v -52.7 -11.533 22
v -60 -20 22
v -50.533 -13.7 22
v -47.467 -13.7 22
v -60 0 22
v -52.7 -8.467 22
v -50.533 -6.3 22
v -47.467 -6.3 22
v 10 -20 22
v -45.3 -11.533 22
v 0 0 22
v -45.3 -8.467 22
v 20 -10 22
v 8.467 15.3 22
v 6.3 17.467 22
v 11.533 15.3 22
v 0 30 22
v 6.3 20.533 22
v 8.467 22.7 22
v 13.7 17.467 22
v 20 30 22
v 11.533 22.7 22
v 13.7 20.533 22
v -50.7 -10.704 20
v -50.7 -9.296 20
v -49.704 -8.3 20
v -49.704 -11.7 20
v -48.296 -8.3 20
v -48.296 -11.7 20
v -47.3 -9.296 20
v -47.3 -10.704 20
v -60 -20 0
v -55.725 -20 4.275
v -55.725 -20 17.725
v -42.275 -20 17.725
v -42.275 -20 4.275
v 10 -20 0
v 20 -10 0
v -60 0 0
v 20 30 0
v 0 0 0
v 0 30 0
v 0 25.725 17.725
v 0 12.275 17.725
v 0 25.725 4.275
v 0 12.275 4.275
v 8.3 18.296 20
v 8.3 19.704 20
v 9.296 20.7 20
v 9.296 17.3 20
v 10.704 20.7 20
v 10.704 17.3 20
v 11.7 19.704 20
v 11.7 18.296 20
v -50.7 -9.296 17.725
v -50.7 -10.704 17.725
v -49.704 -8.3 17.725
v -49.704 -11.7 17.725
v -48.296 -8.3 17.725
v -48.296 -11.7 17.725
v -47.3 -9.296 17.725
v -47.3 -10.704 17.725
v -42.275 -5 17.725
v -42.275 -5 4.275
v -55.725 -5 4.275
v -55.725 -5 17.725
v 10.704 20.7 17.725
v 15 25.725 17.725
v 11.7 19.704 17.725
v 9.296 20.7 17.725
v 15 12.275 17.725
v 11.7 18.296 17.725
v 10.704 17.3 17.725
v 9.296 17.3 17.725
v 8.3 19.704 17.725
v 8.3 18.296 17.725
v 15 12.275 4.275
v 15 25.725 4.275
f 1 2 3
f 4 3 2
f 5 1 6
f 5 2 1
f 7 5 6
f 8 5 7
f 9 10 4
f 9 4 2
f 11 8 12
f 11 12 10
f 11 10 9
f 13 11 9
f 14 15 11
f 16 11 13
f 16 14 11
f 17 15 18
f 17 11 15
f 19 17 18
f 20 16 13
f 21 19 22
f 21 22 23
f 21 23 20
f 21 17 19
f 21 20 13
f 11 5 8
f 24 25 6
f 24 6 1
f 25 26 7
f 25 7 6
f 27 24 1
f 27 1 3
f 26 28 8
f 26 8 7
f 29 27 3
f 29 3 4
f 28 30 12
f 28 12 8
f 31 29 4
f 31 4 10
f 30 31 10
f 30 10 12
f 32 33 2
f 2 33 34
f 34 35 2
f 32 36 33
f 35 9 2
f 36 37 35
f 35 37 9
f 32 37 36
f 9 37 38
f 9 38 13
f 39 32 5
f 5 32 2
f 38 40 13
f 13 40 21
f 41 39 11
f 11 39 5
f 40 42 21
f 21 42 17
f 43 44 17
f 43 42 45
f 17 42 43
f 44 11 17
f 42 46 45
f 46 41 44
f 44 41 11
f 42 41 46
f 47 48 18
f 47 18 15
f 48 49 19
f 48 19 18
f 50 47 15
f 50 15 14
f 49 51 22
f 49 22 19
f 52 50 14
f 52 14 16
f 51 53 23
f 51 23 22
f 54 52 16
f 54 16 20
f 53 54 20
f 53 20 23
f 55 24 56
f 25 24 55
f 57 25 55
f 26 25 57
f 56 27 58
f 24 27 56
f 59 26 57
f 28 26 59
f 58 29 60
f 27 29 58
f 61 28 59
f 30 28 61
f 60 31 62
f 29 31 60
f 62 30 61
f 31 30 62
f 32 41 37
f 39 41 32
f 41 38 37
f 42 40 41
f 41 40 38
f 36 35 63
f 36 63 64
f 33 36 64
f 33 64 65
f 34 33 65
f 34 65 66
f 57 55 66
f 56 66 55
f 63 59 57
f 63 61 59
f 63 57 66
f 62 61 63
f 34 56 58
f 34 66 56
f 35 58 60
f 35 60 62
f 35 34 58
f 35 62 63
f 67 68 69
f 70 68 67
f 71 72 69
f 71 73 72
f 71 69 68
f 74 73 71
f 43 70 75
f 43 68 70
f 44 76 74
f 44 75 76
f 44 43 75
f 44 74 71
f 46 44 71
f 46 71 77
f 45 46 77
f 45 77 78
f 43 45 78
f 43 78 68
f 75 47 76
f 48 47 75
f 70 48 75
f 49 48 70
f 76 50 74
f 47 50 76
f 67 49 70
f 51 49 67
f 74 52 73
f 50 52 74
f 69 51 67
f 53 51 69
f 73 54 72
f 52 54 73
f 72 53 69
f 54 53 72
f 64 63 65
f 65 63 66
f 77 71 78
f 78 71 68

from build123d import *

# Parameters (mm, degrees)
PAD_DEPTH       = 22
SKETCH001_W     = 13.45
SKETCH001_H     = 13.45
POCKET_DEPTH    = 15
SKETCH002_W     = 13.45
SKETCH002_H     = 13.45
POCKET001_DEPTH = 15
CHAMFER_SIZE    = 10
POCKET002_DEPTH = 5
CHAMFER001_SIZE = 2


with BuildPart() as part:
    # Sketch → Pad (new body)
    with BuildSketch(Plane.XY):
        Polygon((0, 30), (0, 0), (-60, 0), (-60, -20), (20, -20), (20, 30), align=None)
    extrude(amount=PAD_DEPTH)

    # Sketch001 (on Face1 of Pad) → Pocket (cut)
    with BuildSketch(Plane(origin=(0, 0, 0), x_dir=(0, -1, 0), z_dir=(-1, 0, 0))):
        with Locations((-19, 11)):
            Rectangle(SKETCH001_W, SKETCH001_H)
    extrude(amount=-POCKET_DEPTH, mode=Mode.SUBTRACT)

    # Sketch002 (on Face12 of Pocket) → Pocket001 (cut)
    with BuildSketch(Plane.XZ.offset(20)):
        with Locations((-49, 11)):
            Rectangle(SKETCH002_W, SKETCH002_H)
    extrude(amount=-POCKET001_DEPTH, mode=Mode.SUBTRACT)

    # Chamfer
    chamfer_edges = [part.edges().sort_by_distance(p)[0] for p in [
        (20, -20, 11),
    ]]
    chamfer(chamfer_edges, length=CHAMFER_SIZE)

    # Sketch003 (on Face9 of Chamfer) → Pocket002 (cut)
    with BuildSketch(Plane.XY.offset(22)):
        Polygon((9.295837, 17.3), (10.704163, 17.3), (11.7, 18.295837), (11.7, 19.704163), (10.704163, 20.7), (9.295837, 20.7), (8.3, 19.704163), (8.3, 18.295837), align=None)
        Polygon((-47.3, -10.704163), (-47.3, -9.295837), (-48.295837, -8.3), (-49.704163, -8.3), (-50.7, -9.295837), (-50.7, -10.704163), (-49.704163, -11.7), (-48.295837, -11.7), align=None)
    extrude(amount=-POCKET002_DEPTH, mode=Mode.SUBTRACT)

    # Chamfer001
    chamfer001_edges = [part.edges().sort_by_distance(p)[0] for p in [
        (-50.7, -10, 22),
        (-50.202082, -8.797918, 22),
        (-49, -8.3, 22),
        (-47.797918, -8.797918, 22),
        (-47.3, -10, 22),
        (-47.797918, -11.202082, 22),
        (-49, -11.7, 22),
        (-50.202082, -11.202082, 22),
        (8.3, 19, 22),
        (8.797918, 20.202082, 22),
        (10, 20.7, 22),
        (11.202082, 20.202082, 22),
        (11.7, 19, 22),
        (11.202082, 17.797918, 22),
        (10, 17.3, 22),
        (8.797918, 17.797918, 22),
    ]]
    chamfer(chamfer001_edges, length=CHAMFER001_SIZE)


solid = part.part
